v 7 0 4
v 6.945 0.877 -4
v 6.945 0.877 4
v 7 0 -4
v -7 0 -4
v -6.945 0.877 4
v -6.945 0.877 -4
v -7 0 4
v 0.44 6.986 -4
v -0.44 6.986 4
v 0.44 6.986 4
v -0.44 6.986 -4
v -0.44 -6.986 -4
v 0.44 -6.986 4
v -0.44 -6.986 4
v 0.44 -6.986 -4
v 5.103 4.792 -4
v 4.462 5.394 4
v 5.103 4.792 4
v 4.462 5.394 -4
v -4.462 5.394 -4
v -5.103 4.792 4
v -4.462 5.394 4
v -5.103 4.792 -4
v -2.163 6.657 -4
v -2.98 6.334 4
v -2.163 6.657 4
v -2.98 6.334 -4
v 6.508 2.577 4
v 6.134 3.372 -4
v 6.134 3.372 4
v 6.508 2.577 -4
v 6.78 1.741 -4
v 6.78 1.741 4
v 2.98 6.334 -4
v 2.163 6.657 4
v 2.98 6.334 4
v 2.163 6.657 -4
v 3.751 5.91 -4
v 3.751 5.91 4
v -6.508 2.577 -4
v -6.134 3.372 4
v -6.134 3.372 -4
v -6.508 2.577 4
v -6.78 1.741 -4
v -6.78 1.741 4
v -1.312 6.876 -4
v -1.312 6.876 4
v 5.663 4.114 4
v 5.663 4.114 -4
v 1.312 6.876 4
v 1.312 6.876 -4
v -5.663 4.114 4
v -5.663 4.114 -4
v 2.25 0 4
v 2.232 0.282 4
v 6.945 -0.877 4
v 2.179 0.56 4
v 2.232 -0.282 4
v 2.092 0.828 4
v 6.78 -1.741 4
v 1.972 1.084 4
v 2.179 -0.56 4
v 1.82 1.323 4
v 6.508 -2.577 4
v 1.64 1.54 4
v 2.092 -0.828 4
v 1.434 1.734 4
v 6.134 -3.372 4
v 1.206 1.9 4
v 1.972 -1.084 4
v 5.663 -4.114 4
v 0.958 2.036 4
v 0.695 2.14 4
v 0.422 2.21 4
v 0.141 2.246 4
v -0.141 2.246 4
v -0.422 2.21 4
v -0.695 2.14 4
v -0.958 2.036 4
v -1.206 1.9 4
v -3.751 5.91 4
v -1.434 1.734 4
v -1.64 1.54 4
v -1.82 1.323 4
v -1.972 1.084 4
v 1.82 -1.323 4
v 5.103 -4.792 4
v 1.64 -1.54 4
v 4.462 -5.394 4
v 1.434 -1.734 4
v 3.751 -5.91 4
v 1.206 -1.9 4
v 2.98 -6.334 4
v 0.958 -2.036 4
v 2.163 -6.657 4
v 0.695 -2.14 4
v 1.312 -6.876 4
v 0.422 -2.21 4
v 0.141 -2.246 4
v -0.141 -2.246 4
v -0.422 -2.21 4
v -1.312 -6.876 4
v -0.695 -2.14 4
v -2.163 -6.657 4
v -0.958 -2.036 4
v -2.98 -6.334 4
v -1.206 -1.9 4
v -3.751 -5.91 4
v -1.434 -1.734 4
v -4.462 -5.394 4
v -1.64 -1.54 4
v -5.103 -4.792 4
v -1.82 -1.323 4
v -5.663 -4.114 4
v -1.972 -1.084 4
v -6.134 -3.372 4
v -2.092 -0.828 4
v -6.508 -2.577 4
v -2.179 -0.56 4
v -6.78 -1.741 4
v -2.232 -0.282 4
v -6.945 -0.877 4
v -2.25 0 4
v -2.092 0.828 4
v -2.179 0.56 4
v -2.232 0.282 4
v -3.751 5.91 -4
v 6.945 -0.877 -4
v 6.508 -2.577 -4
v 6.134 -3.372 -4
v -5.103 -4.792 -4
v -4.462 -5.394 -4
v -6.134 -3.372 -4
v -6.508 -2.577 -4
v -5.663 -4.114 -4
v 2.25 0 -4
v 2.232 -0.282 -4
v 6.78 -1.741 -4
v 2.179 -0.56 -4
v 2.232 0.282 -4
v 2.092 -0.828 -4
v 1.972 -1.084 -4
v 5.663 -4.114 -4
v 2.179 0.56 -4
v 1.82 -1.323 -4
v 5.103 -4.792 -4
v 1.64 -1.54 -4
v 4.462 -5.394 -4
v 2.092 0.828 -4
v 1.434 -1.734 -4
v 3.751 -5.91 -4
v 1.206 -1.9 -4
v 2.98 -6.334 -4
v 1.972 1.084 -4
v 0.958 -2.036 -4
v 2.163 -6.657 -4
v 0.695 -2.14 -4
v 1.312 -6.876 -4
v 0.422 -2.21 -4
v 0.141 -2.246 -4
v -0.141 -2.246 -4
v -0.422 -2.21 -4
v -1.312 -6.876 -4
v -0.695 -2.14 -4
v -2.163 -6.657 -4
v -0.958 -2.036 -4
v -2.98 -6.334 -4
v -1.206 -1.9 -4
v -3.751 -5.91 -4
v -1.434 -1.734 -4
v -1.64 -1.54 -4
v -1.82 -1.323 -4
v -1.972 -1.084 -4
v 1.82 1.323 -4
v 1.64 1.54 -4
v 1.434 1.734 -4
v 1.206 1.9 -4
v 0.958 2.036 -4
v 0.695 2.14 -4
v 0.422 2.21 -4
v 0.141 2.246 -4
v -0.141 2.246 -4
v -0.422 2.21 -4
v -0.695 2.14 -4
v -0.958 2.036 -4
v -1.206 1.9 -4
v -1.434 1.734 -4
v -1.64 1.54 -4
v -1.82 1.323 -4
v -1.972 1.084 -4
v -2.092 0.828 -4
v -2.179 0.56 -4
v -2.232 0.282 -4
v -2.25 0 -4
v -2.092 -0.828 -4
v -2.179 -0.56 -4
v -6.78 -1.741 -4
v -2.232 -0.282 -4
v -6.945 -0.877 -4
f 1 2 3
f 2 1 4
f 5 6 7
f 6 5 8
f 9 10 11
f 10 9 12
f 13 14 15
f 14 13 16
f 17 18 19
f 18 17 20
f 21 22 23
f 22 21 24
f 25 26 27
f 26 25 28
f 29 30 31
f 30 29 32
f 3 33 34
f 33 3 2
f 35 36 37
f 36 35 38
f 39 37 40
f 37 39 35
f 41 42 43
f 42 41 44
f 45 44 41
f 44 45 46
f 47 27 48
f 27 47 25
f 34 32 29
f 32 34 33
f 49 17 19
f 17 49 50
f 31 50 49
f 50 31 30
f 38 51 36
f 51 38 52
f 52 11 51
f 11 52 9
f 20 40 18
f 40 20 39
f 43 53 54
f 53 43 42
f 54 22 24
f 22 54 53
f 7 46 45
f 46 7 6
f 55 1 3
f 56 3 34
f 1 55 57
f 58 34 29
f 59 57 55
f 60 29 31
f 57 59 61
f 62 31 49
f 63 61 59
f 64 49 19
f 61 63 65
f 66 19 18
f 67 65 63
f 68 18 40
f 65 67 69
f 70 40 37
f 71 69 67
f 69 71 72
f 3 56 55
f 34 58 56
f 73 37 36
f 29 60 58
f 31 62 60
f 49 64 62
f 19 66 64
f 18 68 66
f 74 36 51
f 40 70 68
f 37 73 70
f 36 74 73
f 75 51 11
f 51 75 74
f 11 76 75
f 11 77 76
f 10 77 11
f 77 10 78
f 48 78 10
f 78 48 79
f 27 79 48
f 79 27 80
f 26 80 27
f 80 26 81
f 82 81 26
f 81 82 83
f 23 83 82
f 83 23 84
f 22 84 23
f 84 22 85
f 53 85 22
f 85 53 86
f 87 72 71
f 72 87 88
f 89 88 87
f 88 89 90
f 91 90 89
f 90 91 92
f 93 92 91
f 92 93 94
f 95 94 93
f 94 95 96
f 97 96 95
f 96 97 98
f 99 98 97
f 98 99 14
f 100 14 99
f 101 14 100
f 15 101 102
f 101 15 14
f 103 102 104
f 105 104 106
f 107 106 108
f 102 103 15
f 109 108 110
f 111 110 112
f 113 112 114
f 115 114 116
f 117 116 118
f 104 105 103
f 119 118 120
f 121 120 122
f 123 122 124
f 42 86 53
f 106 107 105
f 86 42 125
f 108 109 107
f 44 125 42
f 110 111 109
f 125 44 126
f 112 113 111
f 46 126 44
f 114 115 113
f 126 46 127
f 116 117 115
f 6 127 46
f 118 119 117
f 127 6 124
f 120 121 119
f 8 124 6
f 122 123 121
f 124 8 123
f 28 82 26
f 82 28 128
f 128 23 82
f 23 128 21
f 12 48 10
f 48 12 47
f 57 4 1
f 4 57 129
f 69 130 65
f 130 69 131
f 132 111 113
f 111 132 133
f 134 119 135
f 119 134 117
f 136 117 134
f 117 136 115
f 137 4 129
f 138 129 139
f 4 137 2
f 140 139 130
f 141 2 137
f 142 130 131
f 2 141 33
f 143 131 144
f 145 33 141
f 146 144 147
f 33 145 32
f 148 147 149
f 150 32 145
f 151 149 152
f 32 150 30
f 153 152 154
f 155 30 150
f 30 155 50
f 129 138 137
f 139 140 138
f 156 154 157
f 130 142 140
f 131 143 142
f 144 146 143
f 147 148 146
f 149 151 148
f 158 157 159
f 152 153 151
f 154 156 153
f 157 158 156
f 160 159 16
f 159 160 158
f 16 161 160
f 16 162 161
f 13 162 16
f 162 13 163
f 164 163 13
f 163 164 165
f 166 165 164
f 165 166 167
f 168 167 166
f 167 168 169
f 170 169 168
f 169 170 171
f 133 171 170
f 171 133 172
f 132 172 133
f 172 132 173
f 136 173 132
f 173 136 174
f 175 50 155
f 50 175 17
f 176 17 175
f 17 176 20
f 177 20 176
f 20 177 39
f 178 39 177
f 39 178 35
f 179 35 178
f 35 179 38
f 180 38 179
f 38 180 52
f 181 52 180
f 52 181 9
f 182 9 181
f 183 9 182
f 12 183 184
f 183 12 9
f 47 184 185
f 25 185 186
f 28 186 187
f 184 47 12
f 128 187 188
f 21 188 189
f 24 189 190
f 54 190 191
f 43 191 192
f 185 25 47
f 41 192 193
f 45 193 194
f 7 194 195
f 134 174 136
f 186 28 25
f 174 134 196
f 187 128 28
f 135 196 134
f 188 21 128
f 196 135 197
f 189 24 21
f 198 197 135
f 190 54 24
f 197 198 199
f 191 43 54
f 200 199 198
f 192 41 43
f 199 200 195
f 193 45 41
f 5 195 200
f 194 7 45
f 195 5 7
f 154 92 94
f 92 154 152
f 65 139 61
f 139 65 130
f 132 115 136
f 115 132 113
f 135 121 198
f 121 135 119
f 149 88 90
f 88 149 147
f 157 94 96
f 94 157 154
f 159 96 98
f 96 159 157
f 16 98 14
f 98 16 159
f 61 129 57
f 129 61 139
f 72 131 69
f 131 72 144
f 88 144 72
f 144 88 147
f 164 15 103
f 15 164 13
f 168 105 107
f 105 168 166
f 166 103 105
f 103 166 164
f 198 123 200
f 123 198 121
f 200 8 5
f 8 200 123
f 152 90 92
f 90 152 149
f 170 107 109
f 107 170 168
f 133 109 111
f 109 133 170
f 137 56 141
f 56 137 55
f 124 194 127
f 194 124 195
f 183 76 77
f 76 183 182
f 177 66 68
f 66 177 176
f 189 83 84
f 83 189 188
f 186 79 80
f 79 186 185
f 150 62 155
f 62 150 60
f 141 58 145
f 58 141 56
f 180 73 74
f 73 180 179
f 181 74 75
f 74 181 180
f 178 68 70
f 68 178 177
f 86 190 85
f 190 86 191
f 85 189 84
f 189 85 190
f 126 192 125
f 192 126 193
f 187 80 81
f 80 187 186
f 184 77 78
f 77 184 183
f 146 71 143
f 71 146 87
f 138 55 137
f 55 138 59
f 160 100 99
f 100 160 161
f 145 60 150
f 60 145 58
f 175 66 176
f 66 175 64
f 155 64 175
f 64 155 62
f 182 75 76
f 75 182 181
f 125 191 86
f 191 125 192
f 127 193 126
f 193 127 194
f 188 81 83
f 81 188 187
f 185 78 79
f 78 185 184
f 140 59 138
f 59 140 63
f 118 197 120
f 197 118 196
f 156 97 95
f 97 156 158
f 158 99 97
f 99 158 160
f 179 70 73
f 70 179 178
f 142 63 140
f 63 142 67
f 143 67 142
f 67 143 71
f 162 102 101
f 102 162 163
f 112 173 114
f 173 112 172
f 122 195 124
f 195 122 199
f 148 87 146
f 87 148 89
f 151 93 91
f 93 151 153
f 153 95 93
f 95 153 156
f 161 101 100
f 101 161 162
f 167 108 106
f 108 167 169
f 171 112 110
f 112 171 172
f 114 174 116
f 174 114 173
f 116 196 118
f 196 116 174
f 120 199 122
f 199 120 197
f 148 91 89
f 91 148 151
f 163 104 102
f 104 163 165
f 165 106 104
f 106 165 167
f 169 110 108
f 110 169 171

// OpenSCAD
$fn = 50;


difference() {
	union() {
		translate(v = [0, 0, -4.0000000000]) {
			cylinder(h = 8, r = 7.0000000000);
		}
	}
	union() {
		translate(v = [0, 0, -100.0000000000]) {
			cylinder(h = 200, r = 2.2500000000);
		}
	}
}
